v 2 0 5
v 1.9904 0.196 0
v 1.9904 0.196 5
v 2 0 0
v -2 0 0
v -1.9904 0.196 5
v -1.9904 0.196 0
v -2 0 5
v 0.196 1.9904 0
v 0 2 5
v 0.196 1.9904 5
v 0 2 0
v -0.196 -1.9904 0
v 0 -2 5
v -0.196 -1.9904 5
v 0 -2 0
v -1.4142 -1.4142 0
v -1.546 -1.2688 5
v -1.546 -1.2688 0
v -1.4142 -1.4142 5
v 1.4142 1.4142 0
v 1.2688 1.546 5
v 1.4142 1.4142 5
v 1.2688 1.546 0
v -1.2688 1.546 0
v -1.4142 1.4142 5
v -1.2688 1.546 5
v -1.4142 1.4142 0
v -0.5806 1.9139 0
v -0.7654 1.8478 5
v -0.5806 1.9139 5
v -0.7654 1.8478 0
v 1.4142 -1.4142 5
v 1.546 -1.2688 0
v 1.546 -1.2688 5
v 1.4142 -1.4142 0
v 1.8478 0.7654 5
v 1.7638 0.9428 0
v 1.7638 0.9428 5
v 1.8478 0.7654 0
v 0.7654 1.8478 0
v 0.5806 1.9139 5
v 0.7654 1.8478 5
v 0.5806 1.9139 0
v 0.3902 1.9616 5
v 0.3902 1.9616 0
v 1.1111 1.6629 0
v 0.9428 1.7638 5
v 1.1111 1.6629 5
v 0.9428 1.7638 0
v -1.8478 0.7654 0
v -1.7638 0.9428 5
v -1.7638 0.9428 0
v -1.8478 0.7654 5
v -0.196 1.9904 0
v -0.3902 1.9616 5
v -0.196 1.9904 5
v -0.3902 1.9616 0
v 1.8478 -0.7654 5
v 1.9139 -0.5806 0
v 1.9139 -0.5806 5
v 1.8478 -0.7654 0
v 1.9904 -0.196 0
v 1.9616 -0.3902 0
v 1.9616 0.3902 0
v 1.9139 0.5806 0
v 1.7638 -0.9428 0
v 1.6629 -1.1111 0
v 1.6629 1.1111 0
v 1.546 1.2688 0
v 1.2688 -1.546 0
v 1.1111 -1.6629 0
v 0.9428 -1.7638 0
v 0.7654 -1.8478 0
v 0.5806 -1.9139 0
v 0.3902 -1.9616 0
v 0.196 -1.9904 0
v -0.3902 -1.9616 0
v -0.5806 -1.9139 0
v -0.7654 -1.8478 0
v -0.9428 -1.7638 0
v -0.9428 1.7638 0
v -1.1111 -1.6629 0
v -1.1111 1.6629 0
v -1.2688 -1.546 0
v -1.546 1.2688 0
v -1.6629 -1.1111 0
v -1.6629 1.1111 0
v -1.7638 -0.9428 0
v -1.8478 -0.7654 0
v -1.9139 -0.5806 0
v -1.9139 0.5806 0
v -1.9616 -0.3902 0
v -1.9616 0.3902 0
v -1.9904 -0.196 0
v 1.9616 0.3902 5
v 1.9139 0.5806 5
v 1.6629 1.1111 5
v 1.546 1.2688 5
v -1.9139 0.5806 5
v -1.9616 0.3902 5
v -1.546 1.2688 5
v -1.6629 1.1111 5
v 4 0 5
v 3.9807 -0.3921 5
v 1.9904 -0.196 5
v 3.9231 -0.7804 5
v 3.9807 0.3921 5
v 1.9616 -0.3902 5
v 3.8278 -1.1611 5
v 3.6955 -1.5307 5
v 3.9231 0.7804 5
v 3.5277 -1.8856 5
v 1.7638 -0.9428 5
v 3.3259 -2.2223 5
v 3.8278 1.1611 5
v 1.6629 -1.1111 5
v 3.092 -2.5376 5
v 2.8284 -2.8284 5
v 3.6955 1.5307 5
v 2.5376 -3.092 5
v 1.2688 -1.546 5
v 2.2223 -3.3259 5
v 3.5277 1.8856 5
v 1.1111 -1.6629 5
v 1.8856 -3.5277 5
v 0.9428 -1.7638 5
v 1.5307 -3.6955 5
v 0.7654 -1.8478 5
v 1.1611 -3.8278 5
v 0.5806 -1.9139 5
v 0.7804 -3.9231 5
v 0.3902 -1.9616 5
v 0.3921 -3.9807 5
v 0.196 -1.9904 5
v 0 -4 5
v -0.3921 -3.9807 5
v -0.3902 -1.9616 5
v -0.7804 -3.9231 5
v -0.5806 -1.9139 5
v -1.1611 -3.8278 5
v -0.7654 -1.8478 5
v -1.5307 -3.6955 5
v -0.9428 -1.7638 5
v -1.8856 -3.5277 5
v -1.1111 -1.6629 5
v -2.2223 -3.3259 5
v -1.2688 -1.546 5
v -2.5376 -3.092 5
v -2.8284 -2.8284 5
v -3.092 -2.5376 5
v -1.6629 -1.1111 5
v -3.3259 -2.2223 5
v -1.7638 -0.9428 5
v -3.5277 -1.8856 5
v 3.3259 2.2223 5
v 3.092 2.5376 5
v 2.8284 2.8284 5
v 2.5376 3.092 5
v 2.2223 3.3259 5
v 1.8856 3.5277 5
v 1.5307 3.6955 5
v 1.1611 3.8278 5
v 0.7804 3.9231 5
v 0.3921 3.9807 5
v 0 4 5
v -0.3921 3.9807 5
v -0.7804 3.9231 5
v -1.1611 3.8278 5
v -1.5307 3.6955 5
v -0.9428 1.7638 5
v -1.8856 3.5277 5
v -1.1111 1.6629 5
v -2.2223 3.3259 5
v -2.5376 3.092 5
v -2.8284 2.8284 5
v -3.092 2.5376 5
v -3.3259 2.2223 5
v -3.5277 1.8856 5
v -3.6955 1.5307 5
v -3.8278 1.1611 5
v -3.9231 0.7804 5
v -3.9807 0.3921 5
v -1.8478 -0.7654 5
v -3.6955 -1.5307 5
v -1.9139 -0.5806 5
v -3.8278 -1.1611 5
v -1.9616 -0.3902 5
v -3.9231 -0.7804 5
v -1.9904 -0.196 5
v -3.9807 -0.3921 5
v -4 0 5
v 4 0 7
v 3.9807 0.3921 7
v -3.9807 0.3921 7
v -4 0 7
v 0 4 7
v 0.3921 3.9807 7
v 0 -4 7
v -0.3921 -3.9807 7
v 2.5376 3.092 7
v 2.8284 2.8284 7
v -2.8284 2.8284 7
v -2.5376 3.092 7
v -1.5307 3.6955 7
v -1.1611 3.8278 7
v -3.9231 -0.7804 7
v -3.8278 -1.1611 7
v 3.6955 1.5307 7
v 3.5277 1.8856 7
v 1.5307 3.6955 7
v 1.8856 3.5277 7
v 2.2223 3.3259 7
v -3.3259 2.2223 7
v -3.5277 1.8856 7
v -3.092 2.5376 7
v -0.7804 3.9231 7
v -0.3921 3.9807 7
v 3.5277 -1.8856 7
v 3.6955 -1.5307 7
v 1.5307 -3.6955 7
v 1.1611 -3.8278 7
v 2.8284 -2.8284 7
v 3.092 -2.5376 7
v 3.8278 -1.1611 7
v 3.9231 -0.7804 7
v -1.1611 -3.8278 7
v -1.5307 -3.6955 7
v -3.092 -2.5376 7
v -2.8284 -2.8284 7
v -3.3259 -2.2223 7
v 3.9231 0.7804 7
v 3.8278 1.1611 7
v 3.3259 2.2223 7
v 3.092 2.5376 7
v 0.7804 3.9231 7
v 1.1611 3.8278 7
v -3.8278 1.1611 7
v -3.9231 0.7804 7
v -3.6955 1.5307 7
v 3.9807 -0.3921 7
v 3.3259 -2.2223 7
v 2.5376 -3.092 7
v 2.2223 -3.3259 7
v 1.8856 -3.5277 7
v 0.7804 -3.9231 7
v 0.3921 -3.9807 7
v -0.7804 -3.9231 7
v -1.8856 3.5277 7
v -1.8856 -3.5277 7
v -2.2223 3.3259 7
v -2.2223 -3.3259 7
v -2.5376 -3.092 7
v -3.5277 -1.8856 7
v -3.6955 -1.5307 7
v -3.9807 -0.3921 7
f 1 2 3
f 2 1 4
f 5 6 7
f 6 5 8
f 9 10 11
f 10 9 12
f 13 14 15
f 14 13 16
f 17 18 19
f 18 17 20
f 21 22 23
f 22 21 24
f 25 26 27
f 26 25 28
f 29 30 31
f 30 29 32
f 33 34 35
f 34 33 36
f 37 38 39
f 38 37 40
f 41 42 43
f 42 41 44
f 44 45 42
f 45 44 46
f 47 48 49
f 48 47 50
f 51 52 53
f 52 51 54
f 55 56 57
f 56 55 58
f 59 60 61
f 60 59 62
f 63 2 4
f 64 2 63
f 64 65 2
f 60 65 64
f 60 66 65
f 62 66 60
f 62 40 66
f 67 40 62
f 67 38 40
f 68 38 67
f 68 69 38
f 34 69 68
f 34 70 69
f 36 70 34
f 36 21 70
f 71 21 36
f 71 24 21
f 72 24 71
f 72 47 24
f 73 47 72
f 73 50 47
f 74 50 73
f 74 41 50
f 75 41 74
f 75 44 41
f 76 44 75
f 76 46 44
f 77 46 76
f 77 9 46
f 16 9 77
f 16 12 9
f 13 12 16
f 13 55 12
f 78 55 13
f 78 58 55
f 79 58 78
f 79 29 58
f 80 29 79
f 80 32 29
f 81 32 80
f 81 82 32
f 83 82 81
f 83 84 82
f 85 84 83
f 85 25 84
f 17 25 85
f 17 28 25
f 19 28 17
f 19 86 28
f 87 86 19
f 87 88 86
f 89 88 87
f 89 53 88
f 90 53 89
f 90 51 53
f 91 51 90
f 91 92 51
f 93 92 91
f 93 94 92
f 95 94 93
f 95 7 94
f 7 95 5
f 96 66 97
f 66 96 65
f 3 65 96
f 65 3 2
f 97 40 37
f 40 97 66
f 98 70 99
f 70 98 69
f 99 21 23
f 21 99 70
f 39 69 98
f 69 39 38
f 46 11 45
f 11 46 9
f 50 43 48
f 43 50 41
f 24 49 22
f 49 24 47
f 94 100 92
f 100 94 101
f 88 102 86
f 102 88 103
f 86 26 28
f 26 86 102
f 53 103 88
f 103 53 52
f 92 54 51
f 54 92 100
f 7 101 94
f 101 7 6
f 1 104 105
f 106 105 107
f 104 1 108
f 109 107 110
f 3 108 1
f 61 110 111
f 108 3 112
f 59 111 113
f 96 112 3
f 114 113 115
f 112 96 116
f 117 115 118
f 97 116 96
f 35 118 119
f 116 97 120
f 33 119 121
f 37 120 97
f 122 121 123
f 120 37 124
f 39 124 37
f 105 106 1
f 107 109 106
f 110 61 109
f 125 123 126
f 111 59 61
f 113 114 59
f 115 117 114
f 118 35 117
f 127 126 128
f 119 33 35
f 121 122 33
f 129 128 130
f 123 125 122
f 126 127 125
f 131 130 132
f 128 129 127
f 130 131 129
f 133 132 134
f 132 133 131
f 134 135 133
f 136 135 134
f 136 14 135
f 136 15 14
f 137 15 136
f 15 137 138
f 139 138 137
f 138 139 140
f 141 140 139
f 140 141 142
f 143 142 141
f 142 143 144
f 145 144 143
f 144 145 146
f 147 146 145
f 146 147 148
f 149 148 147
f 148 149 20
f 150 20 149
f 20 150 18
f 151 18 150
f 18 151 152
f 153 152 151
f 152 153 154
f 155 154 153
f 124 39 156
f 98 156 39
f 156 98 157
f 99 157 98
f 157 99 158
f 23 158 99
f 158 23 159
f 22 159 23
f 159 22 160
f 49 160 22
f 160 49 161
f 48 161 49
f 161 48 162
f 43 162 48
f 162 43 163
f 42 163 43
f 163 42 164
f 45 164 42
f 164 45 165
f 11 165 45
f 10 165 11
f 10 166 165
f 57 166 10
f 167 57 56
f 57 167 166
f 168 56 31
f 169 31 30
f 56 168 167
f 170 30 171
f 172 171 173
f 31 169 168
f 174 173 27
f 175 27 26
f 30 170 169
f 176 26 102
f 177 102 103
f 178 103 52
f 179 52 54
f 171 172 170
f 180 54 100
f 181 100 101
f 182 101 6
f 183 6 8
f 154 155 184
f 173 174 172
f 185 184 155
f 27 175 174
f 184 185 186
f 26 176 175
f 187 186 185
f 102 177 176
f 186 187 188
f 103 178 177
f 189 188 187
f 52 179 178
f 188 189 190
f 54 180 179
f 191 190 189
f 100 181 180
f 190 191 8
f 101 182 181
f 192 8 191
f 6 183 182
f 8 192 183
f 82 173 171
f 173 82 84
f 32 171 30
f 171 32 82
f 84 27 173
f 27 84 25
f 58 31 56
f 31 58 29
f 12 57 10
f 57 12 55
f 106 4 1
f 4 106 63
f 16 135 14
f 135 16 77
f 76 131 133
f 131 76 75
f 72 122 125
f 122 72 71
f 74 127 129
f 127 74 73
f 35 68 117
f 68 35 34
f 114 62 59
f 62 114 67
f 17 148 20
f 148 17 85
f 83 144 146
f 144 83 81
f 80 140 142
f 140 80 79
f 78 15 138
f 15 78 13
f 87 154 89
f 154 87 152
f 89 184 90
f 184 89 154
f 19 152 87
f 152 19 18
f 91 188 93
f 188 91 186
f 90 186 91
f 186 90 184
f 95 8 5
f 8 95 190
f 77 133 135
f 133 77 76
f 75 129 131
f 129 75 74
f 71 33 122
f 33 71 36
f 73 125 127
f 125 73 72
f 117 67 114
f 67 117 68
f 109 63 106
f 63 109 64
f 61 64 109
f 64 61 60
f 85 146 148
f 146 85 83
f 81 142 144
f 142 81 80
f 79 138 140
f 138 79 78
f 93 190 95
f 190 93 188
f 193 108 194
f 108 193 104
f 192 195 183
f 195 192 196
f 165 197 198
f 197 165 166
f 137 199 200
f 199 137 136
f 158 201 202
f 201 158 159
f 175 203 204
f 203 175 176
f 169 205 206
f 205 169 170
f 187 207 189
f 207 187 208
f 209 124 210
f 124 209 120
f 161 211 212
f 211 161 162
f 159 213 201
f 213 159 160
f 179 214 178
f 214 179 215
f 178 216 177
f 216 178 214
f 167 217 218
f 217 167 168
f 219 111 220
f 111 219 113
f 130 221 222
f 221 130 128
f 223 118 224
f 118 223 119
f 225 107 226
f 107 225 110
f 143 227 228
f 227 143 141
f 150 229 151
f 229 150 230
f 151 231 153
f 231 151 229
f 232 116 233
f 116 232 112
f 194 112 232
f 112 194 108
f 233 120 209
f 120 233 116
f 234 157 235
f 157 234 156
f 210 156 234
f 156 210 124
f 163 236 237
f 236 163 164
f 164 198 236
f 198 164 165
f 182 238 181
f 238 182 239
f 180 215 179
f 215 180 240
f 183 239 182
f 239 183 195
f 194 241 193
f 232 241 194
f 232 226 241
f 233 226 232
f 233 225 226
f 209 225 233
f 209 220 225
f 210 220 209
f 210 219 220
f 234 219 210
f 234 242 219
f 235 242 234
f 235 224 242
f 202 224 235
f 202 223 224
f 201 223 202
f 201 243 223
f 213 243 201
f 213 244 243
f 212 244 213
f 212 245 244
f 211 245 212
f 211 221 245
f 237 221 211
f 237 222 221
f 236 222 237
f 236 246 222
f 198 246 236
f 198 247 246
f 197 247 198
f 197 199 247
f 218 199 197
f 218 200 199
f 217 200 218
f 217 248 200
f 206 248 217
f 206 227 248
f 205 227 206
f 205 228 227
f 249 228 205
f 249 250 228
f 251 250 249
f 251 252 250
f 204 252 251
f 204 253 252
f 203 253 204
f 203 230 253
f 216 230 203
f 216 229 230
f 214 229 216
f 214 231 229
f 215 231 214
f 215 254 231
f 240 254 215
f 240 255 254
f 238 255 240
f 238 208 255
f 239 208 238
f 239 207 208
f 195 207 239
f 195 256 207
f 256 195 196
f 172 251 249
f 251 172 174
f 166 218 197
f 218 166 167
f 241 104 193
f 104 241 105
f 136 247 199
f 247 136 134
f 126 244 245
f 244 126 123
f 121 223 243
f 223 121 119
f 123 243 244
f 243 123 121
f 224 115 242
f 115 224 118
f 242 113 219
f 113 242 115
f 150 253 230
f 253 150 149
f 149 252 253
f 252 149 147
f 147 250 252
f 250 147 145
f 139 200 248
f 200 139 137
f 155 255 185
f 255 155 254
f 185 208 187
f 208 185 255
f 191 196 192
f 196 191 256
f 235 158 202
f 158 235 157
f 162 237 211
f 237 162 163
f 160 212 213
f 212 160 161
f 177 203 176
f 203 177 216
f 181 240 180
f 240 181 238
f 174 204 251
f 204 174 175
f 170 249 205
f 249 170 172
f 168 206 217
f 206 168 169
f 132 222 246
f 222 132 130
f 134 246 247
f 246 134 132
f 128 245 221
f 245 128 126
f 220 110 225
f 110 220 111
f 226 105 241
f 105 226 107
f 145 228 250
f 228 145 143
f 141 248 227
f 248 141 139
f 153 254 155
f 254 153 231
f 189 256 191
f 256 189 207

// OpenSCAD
// Flat cap for a 4 mm diameter stem.
// Dimensions are in millimetres.

stem_diameter = 4;
stem_length = 5;
cap_diameter = 8;
cap_height = 2;
facet_count = 64;

$fn = facet_count;

union() {
    cylinder(d = stem_diameter, h = stem_length);
    translate([0, 0, stem_length])
        cylinder(d = cap_diameter, h = cap_height);
}
